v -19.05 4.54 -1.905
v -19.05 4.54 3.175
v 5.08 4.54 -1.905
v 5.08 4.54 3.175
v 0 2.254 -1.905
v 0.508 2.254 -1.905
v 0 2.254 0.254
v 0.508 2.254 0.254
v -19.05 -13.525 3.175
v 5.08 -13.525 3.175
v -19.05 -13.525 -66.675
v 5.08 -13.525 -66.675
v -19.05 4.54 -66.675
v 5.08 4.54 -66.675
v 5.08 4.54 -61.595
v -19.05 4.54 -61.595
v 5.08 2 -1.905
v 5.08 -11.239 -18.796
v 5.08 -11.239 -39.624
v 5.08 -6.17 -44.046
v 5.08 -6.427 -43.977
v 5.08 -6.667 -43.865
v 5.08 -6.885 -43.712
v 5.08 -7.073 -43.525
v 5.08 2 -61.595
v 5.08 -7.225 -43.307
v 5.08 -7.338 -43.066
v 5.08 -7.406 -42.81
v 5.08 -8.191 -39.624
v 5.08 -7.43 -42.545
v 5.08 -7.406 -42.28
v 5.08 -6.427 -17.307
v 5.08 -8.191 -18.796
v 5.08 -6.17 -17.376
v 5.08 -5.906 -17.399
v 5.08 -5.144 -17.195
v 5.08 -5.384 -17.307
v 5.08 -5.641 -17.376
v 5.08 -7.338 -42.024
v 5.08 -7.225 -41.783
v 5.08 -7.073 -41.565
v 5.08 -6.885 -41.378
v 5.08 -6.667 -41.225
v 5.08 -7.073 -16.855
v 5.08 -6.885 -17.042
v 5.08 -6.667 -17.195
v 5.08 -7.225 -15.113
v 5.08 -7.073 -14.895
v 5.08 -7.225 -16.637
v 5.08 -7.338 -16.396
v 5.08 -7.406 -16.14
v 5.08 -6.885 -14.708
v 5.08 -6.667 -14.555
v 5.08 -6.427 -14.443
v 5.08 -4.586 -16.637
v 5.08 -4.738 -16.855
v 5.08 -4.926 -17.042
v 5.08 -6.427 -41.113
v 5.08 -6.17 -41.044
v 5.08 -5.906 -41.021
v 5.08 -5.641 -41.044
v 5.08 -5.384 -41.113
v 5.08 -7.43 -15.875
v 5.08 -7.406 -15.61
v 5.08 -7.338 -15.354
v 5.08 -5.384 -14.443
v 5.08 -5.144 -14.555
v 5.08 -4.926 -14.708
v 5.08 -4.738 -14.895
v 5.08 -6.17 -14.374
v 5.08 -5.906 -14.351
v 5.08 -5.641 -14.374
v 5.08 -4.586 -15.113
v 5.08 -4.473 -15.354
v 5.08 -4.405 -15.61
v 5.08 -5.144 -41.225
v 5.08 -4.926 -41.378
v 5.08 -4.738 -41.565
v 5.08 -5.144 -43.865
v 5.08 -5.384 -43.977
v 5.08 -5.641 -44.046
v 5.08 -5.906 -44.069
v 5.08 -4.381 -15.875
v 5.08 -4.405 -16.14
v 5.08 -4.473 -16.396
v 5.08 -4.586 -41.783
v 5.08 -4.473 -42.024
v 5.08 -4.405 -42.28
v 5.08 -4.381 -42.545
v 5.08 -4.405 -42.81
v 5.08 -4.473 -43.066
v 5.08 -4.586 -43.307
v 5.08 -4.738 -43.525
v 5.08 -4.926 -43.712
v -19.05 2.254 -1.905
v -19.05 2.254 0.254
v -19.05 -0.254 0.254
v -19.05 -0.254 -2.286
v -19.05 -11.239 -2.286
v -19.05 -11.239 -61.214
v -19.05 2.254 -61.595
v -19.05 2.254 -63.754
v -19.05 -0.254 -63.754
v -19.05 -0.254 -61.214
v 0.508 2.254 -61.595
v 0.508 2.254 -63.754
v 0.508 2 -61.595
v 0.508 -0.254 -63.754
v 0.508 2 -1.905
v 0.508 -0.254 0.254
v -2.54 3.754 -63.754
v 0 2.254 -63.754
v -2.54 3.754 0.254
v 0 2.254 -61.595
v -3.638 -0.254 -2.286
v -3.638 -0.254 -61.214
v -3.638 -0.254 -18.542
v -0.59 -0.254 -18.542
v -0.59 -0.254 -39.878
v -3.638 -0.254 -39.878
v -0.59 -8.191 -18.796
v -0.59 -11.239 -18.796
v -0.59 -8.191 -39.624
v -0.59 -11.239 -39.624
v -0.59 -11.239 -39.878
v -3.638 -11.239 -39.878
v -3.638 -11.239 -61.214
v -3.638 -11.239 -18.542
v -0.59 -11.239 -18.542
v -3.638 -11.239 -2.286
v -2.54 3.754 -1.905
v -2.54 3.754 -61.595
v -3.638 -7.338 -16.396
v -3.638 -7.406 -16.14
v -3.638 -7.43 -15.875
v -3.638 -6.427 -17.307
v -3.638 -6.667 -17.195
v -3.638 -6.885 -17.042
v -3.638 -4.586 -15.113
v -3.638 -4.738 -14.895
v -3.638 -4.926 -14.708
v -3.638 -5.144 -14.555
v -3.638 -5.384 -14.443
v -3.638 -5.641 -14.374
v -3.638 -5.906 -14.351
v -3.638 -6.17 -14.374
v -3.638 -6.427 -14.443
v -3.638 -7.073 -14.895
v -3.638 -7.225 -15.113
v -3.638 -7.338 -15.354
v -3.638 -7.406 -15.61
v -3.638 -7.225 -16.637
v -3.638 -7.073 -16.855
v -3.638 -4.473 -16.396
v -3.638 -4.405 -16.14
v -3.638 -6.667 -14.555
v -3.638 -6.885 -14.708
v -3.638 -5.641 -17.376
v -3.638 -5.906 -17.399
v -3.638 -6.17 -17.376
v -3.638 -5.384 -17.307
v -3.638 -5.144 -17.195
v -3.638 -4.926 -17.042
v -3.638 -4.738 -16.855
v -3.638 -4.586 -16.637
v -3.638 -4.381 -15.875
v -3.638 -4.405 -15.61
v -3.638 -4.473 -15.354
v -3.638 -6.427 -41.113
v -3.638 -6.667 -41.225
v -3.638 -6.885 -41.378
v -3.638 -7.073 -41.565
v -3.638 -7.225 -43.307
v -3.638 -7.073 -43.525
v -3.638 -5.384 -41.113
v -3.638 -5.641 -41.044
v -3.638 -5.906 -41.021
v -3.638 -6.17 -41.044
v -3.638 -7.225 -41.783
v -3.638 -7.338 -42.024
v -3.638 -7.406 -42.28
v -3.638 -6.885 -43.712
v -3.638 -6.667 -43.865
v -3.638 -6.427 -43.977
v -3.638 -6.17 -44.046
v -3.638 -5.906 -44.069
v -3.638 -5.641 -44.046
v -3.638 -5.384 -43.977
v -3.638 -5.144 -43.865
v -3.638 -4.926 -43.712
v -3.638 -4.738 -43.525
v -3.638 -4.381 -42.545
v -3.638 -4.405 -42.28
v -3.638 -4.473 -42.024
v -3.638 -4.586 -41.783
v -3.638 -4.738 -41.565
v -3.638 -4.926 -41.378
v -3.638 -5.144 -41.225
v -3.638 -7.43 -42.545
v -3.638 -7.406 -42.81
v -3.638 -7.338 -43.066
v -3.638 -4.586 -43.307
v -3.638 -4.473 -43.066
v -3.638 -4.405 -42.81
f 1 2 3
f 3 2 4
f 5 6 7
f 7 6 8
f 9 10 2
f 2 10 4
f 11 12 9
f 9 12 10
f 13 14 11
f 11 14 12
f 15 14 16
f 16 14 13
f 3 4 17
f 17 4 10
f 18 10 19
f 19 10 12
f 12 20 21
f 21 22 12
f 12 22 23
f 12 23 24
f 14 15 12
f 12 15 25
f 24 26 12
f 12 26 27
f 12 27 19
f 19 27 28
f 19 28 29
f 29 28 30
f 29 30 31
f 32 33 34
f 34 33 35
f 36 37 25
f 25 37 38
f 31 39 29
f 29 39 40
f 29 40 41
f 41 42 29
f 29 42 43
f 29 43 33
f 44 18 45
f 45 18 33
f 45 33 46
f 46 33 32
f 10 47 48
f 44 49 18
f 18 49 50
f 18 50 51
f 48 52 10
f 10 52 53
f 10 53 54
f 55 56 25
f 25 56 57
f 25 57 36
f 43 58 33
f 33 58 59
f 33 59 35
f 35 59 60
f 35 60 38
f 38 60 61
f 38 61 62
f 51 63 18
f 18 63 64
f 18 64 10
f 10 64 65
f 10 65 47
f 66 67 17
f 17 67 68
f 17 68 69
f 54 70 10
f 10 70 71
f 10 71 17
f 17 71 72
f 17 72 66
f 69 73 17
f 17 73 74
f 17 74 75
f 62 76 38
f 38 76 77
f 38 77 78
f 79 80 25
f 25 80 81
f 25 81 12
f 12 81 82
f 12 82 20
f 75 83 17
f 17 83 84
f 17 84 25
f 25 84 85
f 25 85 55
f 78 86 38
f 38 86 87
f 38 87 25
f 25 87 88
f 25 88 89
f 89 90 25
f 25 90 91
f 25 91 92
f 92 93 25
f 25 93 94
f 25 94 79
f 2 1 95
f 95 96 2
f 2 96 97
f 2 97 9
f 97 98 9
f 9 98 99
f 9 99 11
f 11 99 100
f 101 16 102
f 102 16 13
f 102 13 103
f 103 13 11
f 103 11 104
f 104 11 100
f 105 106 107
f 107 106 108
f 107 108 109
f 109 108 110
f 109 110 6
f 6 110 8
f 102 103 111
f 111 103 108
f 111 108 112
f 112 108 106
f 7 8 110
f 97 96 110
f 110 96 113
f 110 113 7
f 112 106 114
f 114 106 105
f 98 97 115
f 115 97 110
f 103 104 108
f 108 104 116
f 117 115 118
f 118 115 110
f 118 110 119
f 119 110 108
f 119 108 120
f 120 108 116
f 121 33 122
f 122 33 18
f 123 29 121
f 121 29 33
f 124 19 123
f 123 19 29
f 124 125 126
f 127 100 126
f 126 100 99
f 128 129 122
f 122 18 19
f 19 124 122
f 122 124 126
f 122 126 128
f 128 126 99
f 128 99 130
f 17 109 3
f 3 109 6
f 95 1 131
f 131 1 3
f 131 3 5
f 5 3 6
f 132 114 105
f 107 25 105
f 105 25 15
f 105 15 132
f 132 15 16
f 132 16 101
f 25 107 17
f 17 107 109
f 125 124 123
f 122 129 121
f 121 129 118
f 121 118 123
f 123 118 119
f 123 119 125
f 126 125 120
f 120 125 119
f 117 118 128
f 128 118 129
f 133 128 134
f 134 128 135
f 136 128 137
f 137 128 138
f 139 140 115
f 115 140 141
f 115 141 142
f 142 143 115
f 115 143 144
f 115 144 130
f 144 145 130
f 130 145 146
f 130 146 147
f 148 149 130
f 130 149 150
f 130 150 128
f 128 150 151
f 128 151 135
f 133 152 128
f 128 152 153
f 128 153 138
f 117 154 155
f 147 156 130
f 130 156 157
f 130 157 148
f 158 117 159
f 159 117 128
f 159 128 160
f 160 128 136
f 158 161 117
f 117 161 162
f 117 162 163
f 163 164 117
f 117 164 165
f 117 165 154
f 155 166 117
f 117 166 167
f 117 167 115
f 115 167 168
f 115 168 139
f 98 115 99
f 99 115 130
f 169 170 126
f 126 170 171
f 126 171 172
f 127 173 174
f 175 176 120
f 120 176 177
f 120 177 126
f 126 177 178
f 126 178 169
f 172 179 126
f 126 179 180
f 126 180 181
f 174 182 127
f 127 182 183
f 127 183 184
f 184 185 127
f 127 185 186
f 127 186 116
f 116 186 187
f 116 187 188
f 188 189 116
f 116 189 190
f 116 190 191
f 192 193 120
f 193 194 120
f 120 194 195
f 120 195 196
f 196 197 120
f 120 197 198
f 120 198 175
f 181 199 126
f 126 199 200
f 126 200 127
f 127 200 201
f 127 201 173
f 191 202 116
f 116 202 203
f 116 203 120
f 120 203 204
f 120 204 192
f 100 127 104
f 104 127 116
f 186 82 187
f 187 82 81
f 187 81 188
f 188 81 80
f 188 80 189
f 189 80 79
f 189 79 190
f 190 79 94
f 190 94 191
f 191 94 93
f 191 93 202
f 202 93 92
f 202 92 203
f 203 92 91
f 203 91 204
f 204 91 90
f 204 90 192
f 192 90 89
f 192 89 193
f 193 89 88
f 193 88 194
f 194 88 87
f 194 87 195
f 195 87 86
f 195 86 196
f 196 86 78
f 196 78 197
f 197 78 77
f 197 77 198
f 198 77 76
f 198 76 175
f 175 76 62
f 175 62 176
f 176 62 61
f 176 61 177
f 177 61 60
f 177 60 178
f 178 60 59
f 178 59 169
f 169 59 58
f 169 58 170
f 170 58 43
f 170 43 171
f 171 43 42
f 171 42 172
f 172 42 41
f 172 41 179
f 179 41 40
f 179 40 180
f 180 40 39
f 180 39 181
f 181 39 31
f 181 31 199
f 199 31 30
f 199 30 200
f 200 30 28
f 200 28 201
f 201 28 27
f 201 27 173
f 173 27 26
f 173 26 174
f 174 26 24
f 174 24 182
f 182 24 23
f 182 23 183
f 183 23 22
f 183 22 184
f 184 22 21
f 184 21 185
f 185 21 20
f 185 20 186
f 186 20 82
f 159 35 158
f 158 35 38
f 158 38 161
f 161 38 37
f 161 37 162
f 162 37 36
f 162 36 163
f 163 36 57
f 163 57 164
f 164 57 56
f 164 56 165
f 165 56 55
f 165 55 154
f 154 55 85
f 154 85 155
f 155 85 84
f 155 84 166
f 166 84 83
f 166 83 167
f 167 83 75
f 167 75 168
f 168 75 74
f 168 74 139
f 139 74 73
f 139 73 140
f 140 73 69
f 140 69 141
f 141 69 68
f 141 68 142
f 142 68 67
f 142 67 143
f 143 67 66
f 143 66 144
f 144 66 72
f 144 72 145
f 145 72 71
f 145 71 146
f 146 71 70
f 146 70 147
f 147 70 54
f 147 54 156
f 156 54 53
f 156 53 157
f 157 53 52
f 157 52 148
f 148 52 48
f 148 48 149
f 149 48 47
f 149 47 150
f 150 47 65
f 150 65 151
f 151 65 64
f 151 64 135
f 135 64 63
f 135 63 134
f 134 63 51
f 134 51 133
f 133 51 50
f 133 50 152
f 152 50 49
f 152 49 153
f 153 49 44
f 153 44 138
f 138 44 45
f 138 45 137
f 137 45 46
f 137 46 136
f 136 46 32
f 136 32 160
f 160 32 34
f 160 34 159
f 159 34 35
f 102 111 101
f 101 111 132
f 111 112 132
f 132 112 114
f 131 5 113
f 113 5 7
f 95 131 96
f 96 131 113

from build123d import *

# Parameters (mm, degrees)
BOSS_EXTRUDE1_DEPTH      = 5.08
BOSS_EXTRUDE1_DEPTH_BACK = 19.05
SKETCH1_W                = 69.85
SKETCH1_H                = 18.0655
CUT_EXTRUDE1_DEPTH       = 0.254
CUT_EXTRUDE1_DEPTH_BACK  = 2.254
SKETCH2_W                = 97.536
SKETCH2_H                = 64.008
CUT_EXTRUDE2_DEPTH       = 73.185536469
CUT_EXTRUDE2_DEPTH_BACK  = 73.185536469
SKETCH3_W                = 20.828
SKETCH3_H                = 3.048
CUT_EXTRUDE3_START       = -2.54
SKETCH4_W                = 24.13
SKETCH4_H                = 59.69
CUT_EXTRUDE3_DEPTH       = 2.54
CUT_EXTRUDE4_REACH       = 72.602
SKETCH5_W                = 18.459621809
SKETCH5_H                = 21.336
SKETCH6_W                = 58.928
SKETCH6_H                = 10.9855
CUT_EXTRUDE5_DEPTH       = 15.411621809
SKETCH7_R                = 1.524
CUT_EXTRUDE6_DEPTH       = 73.185536469
CUT_EXTRUDE7_DEPTH       = 2.159
CUT_EXTRUDE9_START       = 59.69
CUT_EXTRUDE9_DEPTH       = 2.159


with BuildPart() as part:
    # Sketch1 → Boss-Extrude1 (new, two sides: drawn at the far end of the back side and taken through both)
    with BuildSketch(Plane(origin=(0, 0, 0), x_dir=(0, 0, -1), z_dir=(1, 0, 0)).offset(-BOSS_EXTRUDE1_DEPTH_BACK)):
        with Locations((31.75, -4.49275)):
            Rectangle(SKETCH1_W, SKETCH1_H)
    extrude(amount=BOSS_EXTRUDE1_DEPTH + BOSS_EXTRUDE1_DEPTH_BACK)

    # Sketch2 → Cut-Extrude1 (cut, two sides: drawn at the far end of the back side and taken through both)
    with BuildSketch(Plane(origin=(0, 2, 0), x_dir=(1, 0, 0), z_dir=(0, 1, 0)).offset(-CUT_EXTRUDE1_DEPTH_BACK)):
        with Locations((-48.26, 31.75)):
            Rectangle(SKETCH2_W, SKETCH2_H)
    extrude(amount=CUT_EXTRUDE1_DEPTH + CUT_EXTRUDE1_DEPTH_BACK, mode=Mode.SUBTRACT)

    # Sketch3 → Cut-Extrude2 (cut, two sides: drawn at the far end of the back side and taken through both)
    with BuildSketch(Plane(origin=(5.08, 0, 0), x_dir=(0, 0, -1), z_dir=(1, 0, 0)).offset(-CUT_EXTRUDE2_DEPTH_BACK)):
        with Locations((29.21, -9.7155)):
            Rectangle(SKETCH3_W, SKETCH3_H)
    extrude(amount=CUT_EXTRUDE2_DEPTH + CUT_EXTRUDE2_DEPTH_BACK, mode=Mode.SUBTRACT)

    # Sketch4 → Cut-Extrude3 (cut)
    with BuildSketch(Plane(origin=(0, 4.54, 0), x_dir=(1, 0, 0), z_dir=(0, 1, 0)).offset(CUT_EXTRUDE3_START)):
        with Locations((-6.985, 31.75)):
            Rectangle(SKETCH4_W, SKETCH4_H)
    extrude(amount=CUT_EXTRUDE3_DEPTH, mode=Mode.SUBTRACT)

    # Cut-Extrude4: up to this face of the body (flat: up to its plane)
    cut_extrude4_end = Plane(part.part.faces().sort_by_distance((-6.985, -11.2395, -29.21))[0])
    # Sketch5 → Cut-Extrude4 (cut, up to the picked face)
    with BuildSketch(Plane(origin=(0, -0.254, 0), x_dir=(1, 0, 0), z_dir=(0, 1, 0)), mode=Mode.PRIVATE) as cut_extrude4_sk1:
        with Locations((-9.820189095, 29.21)):
            Rectangle(SKETCH5_W, SKETCH5_H)
    cut_extrude4_tool1 = split(extrude(cut_extrude4_sk1.sketch, amount=-CUT_EXTRUDE4_REACH, mode=Mode.PRIVATE), bisect_by=cut_extrude4_end, keep=Keep.BOTH, mode=Mode.PRIVATE)
    add(cut_extrude4_tool1.solids().sort_by(Axis((-9.820189, -0.254, -29.21), (0, -1, 0)))[0], mode=Mode.SUBTRACT)

    # Sketch6 → Cut-Extrude5 (cut)
    with BuildSketch(Plane.ZY.offset(19.05)):
        with Locations((-31.75, -5.74675)):
            Rectangle(SKETCH6_W, SKETCH6_H)
    extrude(amount=-CUT_EXTRUDE5_DEPTH, mode=Mode.SUBTRACT)

    # Sketch7 → Cut-Extrude6 (cut, through all)
    with BuildSketch(Plane(origin=(5.08, 0, 0), x_dir=(0, 0, -1), z_dir=(1, 0, 0))):
        with Locations((15.875, -5.9055)):
            Circle(SKETCH7_R)
        with Locations((42.545, -5.9055)):
            Circle(SKETCH7_R)
    extrude(amount=-CUT_EXTRUDE6_DEPTH, mode=Mode.SUBTRACT)

    # Sketch8 → Cut-Extrude7 (cut)
    with BuildSketch(Plane.XY.offset(-61.595)):
        Polygon((-19.05, 2.254), (-2.54, 3.754), (0, 2.254), align=None)
    extrude(amount=-CUT_EXTRUDE7_DEPTH, mode=Mode.SUBTRACT)

    # Sketch8<2> → Cut-Extrude9 (cut)
    with BuildSketch(Plane.XY.offset(-61.595).offset(CUT_EXTRUDE9_START)):
        Polygon((-19.05, 2.254), (-2.54, 3.754), (0, 2.254), align=None)
    extrude(amount=CUT_EXTRUDE9_DEPTH, mode=Mode.SUBTRACT)


solid = part.part
